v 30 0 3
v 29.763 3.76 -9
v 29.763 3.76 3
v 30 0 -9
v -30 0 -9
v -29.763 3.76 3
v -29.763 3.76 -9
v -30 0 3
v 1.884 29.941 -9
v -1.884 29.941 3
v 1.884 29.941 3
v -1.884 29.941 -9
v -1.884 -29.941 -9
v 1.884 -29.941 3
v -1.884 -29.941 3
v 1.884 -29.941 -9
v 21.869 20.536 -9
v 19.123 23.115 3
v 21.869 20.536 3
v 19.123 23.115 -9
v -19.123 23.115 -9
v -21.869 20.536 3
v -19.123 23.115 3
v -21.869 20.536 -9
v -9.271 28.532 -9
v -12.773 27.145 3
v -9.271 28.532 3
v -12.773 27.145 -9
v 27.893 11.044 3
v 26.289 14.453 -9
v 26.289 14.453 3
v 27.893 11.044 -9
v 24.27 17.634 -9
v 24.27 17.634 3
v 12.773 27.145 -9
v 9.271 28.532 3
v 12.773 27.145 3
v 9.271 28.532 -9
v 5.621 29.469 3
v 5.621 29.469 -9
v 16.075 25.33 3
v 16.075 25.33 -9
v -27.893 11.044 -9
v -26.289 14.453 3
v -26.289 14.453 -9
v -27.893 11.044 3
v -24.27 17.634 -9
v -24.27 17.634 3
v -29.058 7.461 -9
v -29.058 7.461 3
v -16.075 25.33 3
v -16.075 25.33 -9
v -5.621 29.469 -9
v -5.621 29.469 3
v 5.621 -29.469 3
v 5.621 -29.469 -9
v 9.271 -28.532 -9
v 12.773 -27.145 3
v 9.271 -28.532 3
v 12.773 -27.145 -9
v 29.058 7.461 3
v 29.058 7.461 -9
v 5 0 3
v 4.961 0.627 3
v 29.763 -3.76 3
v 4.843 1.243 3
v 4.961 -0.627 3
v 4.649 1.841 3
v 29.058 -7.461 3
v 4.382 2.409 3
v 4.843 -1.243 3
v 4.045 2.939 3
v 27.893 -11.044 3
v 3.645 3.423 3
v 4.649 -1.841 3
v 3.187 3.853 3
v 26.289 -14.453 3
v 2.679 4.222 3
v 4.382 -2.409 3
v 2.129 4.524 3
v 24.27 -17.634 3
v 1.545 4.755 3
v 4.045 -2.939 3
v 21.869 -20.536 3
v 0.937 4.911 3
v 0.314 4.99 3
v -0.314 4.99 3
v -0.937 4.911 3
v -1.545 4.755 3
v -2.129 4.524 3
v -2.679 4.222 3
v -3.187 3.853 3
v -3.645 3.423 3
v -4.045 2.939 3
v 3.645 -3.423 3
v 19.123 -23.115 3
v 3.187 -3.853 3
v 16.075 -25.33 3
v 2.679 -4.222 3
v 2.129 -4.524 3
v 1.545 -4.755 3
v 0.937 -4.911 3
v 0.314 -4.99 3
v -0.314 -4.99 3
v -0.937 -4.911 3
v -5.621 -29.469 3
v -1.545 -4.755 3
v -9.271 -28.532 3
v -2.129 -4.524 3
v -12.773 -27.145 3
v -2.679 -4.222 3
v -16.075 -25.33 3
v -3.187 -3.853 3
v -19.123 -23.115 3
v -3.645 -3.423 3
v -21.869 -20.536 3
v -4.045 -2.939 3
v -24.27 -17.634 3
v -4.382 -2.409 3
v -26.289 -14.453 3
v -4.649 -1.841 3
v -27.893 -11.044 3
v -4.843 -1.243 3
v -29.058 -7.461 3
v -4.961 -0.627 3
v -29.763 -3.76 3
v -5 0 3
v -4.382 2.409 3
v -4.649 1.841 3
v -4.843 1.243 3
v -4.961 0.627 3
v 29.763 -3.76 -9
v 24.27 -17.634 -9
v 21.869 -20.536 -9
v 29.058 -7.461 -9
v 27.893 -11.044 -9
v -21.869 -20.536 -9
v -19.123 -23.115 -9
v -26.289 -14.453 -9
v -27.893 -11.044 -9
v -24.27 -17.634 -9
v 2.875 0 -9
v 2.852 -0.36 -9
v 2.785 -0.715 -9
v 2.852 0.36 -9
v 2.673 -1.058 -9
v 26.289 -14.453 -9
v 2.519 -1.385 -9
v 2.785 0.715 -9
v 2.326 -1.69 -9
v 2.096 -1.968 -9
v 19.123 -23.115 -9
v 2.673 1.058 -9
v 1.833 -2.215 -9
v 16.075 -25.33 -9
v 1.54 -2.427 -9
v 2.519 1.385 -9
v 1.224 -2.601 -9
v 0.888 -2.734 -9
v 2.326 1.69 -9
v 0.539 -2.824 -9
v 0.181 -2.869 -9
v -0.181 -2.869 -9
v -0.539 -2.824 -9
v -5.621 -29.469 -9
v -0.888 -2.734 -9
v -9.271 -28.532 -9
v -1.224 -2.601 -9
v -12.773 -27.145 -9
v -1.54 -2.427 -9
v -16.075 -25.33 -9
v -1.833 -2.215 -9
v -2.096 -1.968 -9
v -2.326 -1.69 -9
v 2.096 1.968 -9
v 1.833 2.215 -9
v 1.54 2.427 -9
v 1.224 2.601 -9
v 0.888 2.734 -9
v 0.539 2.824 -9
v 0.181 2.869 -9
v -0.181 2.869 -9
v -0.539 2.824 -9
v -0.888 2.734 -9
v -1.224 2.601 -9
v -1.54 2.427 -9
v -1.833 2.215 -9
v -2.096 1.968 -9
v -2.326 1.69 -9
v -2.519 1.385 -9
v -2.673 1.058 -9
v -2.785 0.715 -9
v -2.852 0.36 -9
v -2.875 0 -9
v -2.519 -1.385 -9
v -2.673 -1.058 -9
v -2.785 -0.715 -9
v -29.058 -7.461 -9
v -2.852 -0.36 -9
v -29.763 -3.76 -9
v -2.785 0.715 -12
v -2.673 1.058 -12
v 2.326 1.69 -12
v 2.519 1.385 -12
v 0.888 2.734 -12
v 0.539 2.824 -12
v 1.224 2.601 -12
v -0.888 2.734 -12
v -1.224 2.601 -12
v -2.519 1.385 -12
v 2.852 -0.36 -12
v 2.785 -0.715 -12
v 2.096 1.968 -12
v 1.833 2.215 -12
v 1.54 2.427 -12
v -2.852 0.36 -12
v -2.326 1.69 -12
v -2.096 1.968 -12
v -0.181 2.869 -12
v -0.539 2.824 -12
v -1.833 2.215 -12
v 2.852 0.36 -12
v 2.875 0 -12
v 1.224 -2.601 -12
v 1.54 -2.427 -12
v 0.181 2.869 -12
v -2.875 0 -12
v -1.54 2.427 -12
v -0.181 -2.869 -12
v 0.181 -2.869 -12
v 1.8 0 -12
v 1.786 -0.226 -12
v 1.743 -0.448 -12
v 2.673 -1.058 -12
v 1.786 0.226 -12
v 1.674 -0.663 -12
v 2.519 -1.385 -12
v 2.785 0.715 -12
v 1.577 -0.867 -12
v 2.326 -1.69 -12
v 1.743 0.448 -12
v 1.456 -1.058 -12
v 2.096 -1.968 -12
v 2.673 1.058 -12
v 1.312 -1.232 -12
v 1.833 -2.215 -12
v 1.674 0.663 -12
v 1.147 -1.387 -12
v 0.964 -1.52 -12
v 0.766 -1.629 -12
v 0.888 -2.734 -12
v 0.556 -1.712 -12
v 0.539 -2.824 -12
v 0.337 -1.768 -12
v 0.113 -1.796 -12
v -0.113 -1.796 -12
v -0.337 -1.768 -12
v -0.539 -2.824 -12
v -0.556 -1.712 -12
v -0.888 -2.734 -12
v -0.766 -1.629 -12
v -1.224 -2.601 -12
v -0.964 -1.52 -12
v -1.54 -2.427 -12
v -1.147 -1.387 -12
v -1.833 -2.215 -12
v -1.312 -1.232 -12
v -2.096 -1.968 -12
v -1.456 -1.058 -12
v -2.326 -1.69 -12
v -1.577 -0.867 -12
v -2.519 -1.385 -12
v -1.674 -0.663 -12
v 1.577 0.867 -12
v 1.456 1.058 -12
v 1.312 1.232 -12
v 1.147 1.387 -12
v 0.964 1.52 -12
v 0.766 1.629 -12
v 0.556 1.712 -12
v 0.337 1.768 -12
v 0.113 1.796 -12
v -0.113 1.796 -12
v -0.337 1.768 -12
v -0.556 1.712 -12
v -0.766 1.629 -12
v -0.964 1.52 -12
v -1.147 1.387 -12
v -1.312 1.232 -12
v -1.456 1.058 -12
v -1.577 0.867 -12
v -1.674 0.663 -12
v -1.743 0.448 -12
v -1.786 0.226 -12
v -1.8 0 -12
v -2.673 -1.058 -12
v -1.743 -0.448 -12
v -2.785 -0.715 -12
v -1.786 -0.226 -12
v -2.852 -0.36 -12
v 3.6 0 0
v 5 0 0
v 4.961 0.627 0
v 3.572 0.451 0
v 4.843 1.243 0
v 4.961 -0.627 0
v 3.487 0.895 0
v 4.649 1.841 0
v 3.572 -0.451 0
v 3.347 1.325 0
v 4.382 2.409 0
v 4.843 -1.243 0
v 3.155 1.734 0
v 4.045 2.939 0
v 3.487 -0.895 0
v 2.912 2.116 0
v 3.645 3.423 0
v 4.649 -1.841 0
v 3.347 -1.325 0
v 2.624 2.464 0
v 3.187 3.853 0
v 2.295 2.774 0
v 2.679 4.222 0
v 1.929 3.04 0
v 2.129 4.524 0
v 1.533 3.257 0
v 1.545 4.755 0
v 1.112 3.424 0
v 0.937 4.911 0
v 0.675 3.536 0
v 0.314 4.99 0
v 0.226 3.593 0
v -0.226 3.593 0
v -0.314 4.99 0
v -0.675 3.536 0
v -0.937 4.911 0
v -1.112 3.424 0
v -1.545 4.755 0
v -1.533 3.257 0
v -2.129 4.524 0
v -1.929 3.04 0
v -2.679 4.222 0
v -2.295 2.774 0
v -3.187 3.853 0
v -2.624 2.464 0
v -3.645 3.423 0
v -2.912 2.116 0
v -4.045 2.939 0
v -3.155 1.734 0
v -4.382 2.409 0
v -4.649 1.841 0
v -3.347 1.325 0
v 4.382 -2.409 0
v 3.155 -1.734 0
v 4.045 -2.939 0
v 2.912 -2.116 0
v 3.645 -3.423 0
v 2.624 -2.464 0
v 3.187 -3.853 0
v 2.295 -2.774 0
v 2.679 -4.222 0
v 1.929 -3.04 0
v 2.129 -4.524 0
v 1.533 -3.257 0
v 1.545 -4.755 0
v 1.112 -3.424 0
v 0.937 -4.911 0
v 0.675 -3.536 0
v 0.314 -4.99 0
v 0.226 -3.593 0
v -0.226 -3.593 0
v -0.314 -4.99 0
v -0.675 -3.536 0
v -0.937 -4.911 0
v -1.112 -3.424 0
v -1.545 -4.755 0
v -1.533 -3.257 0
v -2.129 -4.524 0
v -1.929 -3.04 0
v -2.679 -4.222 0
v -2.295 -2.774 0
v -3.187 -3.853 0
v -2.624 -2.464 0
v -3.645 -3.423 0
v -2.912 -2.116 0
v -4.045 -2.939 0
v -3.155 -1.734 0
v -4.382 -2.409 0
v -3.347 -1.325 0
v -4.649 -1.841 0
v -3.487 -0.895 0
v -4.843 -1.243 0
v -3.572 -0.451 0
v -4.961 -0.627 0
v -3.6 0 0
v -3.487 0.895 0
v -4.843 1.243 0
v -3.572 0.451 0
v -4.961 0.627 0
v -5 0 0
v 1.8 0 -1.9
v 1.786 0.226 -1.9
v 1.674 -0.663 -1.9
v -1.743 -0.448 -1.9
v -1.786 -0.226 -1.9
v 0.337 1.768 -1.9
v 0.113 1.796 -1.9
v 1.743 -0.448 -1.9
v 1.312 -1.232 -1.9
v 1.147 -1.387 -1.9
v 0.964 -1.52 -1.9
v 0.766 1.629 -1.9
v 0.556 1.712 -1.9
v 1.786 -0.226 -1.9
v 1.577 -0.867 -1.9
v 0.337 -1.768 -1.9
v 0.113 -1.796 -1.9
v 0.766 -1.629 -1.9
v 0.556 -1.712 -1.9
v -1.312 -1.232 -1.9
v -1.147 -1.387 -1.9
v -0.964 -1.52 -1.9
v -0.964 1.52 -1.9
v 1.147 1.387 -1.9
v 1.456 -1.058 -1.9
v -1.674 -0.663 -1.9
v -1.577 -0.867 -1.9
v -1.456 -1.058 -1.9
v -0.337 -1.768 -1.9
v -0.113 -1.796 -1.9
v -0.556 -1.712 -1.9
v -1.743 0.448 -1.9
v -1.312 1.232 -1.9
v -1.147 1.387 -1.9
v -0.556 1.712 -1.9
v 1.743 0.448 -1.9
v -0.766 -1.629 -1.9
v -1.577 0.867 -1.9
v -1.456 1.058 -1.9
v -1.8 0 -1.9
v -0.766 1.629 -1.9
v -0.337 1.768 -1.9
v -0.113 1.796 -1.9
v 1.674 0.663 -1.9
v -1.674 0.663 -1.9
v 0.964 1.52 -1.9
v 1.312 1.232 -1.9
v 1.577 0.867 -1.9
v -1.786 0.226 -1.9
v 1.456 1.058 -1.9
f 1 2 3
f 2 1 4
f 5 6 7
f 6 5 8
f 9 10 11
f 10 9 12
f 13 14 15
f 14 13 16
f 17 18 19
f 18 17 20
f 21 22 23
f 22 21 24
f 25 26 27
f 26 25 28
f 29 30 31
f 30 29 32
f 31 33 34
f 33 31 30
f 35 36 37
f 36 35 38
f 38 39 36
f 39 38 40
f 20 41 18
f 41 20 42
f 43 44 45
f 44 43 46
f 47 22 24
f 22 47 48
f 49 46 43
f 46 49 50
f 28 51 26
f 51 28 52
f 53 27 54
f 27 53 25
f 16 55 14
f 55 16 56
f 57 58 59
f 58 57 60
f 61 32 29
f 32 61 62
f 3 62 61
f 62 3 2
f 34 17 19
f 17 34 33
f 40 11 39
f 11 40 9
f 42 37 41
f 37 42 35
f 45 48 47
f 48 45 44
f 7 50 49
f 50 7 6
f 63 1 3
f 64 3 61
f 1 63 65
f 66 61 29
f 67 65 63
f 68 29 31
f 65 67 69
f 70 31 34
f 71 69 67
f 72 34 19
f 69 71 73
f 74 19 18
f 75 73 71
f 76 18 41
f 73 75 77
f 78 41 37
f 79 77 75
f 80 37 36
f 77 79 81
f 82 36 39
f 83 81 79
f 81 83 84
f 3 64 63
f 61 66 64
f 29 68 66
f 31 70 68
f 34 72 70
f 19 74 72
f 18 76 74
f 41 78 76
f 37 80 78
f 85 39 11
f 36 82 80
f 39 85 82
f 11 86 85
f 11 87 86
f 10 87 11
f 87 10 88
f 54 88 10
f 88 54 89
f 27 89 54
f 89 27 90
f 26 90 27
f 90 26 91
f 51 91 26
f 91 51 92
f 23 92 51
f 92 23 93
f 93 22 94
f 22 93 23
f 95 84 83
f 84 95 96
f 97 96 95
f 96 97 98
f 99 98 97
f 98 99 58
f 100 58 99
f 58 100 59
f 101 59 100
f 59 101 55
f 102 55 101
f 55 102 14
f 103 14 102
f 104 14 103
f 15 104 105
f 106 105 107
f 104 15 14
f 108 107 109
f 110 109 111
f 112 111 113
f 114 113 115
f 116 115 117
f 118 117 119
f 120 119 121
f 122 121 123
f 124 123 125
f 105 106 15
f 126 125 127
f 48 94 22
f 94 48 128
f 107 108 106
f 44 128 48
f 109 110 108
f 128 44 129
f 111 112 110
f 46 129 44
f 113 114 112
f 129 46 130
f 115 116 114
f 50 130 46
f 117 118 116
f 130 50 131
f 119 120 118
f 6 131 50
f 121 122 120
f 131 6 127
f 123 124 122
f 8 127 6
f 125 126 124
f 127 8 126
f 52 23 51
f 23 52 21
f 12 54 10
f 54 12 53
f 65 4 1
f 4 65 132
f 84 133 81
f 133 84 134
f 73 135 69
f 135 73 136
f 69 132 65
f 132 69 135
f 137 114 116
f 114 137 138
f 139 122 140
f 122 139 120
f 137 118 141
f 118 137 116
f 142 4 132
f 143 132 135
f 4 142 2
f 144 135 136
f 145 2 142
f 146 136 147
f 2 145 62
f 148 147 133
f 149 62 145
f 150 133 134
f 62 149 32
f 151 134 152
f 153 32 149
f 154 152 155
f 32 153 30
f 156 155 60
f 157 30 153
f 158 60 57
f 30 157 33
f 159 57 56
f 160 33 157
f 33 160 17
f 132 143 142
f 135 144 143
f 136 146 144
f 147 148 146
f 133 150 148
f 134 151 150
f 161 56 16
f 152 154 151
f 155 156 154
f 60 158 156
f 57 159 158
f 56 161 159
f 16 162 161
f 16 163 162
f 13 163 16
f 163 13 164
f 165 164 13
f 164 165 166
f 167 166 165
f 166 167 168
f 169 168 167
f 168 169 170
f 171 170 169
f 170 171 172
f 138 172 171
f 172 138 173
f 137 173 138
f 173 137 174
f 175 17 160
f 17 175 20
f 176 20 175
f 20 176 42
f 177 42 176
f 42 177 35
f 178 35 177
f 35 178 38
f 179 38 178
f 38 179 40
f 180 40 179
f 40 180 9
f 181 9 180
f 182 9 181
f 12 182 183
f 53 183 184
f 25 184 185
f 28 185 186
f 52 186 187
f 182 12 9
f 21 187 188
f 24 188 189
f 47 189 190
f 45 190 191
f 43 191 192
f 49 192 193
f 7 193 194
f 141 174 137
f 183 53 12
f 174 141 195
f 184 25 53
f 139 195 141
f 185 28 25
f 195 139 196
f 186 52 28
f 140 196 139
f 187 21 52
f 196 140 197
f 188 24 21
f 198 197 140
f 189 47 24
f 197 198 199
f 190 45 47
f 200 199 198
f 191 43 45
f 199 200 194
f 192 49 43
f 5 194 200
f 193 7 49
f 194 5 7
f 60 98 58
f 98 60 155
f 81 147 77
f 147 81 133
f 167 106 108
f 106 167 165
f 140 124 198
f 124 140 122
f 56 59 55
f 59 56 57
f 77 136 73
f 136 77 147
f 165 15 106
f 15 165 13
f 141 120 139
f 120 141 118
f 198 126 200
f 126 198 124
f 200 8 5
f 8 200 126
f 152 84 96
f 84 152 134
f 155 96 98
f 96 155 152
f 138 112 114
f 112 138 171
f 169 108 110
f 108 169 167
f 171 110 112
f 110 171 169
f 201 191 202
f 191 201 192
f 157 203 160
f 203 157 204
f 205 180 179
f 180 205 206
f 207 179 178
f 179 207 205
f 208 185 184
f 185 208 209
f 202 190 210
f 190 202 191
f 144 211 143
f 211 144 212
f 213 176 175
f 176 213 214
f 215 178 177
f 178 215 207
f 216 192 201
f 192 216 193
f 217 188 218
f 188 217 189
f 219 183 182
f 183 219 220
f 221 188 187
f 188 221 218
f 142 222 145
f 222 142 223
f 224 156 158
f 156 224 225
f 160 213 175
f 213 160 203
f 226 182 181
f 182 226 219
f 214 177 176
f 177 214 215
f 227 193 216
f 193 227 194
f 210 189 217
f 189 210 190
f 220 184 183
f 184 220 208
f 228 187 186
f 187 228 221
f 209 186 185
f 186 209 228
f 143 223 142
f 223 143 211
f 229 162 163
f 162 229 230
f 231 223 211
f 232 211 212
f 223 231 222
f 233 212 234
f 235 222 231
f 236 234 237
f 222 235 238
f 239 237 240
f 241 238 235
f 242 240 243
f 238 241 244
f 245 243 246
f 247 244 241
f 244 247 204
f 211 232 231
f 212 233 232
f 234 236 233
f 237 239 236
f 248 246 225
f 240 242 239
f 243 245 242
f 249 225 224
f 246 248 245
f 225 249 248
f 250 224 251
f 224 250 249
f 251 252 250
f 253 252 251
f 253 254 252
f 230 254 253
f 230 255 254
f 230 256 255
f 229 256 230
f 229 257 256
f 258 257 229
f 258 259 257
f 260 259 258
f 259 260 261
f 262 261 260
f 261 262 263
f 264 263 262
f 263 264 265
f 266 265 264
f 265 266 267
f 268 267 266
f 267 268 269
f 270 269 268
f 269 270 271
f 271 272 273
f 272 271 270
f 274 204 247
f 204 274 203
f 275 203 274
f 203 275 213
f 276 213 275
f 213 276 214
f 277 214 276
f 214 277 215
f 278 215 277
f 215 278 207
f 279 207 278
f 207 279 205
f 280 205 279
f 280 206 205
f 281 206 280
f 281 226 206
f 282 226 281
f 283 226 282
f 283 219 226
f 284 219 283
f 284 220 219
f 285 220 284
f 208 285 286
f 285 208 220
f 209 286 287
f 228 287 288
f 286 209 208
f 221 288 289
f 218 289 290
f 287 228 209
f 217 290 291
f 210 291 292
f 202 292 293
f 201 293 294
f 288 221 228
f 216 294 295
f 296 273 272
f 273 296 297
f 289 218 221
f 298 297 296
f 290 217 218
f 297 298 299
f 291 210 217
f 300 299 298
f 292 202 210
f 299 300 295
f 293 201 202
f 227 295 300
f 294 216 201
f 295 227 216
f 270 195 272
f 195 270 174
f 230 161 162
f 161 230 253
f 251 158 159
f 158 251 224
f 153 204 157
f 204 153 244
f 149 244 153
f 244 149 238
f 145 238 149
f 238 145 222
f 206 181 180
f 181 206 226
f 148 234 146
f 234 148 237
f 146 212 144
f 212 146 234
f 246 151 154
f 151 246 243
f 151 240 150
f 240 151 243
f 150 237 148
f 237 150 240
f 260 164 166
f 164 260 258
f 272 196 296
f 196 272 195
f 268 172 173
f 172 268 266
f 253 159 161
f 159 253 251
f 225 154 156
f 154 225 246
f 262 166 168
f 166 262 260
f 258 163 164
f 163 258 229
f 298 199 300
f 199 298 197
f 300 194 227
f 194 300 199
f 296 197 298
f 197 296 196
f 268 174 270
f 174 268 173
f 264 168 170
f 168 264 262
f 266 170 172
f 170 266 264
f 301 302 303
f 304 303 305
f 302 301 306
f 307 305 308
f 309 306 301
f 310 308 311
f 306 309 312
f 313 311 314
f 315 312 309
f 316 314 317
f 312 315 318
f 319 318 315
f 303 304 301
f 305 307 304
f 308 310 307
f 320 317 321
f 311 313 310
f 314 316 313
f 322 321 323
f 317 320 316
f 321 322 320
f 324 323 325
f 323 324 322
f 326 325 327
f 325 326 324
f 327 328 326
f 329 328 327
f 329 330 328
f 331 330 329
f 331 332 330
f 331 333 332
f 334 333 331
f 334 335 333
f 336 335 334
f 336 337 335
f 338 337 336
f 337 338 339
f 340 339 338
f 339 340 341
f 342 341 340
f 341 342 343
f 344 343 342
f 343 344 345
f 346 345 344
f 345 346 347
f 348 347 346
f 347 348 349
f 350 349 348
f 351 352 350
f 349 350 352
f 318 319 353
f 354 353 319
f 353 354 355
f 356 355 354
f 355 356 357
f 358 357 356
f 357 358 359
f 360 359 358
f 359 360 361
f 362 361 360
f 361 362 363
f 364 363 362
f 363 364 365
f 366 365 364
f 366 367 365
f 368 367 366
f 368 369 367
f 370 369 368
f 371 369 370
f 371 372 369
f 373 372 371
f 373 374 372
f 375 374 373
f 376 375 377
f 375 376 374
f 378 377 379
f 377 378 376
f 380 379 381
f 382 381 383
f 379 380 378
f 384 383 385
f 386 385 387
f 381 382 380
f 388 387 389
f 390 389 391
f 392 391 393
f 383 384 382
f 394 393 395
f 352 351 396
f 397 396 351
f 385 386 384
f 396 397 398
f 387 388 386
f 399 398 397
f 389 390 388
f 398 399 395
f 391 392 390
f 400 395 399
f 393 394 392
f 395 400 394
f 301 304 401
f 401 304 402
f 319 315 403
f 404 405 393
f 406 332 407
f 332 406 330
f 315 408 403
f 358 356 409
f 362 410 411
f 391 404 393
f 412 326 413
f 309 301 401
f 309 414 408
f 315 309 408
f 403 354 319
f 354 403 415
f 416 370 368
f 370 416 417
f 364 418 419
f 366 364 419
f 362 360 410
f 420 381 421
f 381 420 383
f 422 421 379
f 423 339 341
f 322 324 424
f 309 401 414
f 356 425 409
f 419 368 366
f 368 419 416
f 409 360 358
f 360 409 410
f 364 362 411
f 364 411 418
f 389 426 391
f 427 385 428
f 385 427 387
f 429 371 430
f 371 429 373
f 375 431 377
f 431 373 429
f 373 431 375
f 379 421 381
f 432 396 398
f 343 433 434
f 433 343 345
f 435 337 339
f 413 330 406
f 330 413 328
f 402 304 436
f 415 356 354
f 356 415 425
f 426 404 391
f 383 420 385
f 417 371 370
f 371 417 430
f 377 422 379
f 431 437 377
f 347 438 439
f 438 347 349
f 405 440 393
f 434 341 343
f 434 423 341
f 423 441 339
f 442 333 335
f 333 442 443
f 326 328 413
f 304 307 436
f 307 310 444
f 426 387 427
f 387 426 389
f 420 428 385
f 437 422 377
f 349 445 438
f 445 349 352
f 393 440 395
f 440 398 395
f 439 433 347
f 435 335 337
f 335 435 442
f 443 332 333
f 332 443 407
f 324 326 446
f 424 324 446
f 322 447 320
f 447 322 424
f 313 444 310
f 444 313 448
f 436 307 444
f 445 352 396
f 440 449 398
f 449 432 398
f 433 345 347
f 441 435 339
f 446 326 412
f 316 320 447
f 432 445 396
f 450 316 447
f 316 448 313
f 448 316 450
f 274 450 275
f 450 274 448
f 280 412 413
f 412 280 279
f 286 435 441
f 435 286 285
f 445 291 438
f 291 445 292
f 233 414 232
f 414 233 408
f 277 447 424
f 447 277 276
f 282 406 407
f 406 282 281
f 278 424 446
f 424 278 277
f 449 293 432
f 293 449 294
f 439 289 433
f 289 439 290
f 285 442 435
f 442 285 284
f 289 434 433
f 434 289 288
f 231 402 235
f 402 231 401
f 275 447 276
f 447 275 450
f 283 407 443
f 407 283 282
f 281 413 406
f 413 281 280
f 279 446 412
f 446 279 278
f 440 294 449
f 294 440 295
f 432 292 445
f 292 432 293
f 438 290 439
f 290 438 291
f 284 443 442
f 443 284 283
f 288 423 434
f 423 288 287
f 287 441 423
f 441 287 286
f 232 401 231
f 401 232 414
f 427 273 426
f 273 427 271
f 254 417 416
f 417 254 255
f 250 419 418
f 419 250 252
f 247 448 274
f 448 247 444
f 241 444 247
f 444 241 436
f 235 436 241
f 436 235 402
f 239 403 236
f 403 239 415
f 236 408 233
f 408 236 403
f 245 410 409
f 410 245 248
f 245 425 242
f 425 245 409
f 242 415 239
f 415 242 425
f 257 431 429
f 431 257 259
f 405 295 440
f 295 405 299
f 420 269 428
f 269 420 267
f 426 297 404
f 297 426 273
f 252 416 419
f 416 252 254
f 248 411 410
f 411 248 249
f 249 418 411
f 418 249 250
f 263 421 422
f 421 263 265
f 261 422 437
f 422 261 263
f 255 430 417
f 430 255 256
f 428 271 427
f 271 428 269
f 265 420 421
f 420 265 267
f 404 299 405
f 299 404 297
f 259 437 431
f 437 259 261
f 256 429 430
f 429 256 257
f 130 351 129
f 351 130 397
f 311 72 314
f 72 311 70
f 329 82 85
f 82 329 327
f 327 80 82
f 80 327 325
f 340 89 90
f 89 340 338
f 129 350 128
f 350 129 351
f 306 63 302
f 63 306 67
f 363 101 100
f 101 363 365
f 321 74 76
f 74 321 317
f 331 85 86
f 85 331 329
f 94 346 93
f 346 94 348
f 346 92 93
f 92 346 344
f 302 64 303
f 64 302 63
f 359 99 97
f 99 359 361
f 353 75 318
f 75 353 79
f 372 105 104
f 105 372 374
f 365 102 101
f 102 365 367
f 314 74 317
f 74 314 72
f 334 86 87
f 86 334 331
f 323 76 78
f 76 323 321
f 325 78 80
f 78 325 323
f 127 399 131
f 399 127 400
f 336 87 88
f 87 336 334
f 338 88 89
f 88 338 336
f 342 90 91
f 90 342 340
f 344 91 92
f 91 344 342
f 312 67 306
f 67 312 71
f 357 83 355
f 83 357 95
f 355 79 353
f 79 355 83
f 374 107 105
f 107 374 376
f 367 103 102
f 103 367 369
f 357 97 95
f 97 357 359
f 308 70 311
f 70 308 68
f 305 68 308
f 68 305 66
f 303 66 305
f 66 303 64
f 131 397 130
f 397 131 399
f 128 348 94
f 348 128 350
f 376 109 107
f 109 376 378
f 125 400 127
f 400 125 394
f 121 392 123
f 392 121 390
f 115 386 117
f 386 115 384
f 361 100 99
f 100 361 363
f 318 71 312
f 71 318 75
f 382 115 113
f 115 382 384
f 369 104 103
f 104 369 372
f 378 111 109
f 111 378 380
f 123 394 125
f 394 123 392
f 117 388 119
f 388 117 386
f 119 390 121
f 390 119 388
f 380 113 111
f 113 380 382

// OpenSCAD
$fn = 50;

difference() {
	union() {
		translate(v = [0, 0, -9.0]) {
			cylinder(h = 12, r = 30.0);
		}
		#translate(v = [0, 0, -12.0]) {
			cylinder(h = 12, r = 2.875);
		}
	}
	union() {
		translate(v = [0, 0, 0]) {
			rotate(a = [0, 0, 0]) {
				difference() {
					union() {
						translate(v = [0, 0, -12.0]) {
							cylinder(h = 12, r = 1.5);
						}
						translate(v = [0, 0, -1.9]) {
							cylinder(h = 1.9, r1 = 1.8, r2 = 3.6);
						}
						translate(v = [0, 0, -12.0]) {
							cylinder(h = 12, r = 1.8);
						}
						translate(v = [0, 0, -12.0]) {
							cylinder(h = 12, r = 1.5);
						}
					}
					union();
				}
			}
		}
		#cylinder(h = 3, r = 5.0);
	}
}
